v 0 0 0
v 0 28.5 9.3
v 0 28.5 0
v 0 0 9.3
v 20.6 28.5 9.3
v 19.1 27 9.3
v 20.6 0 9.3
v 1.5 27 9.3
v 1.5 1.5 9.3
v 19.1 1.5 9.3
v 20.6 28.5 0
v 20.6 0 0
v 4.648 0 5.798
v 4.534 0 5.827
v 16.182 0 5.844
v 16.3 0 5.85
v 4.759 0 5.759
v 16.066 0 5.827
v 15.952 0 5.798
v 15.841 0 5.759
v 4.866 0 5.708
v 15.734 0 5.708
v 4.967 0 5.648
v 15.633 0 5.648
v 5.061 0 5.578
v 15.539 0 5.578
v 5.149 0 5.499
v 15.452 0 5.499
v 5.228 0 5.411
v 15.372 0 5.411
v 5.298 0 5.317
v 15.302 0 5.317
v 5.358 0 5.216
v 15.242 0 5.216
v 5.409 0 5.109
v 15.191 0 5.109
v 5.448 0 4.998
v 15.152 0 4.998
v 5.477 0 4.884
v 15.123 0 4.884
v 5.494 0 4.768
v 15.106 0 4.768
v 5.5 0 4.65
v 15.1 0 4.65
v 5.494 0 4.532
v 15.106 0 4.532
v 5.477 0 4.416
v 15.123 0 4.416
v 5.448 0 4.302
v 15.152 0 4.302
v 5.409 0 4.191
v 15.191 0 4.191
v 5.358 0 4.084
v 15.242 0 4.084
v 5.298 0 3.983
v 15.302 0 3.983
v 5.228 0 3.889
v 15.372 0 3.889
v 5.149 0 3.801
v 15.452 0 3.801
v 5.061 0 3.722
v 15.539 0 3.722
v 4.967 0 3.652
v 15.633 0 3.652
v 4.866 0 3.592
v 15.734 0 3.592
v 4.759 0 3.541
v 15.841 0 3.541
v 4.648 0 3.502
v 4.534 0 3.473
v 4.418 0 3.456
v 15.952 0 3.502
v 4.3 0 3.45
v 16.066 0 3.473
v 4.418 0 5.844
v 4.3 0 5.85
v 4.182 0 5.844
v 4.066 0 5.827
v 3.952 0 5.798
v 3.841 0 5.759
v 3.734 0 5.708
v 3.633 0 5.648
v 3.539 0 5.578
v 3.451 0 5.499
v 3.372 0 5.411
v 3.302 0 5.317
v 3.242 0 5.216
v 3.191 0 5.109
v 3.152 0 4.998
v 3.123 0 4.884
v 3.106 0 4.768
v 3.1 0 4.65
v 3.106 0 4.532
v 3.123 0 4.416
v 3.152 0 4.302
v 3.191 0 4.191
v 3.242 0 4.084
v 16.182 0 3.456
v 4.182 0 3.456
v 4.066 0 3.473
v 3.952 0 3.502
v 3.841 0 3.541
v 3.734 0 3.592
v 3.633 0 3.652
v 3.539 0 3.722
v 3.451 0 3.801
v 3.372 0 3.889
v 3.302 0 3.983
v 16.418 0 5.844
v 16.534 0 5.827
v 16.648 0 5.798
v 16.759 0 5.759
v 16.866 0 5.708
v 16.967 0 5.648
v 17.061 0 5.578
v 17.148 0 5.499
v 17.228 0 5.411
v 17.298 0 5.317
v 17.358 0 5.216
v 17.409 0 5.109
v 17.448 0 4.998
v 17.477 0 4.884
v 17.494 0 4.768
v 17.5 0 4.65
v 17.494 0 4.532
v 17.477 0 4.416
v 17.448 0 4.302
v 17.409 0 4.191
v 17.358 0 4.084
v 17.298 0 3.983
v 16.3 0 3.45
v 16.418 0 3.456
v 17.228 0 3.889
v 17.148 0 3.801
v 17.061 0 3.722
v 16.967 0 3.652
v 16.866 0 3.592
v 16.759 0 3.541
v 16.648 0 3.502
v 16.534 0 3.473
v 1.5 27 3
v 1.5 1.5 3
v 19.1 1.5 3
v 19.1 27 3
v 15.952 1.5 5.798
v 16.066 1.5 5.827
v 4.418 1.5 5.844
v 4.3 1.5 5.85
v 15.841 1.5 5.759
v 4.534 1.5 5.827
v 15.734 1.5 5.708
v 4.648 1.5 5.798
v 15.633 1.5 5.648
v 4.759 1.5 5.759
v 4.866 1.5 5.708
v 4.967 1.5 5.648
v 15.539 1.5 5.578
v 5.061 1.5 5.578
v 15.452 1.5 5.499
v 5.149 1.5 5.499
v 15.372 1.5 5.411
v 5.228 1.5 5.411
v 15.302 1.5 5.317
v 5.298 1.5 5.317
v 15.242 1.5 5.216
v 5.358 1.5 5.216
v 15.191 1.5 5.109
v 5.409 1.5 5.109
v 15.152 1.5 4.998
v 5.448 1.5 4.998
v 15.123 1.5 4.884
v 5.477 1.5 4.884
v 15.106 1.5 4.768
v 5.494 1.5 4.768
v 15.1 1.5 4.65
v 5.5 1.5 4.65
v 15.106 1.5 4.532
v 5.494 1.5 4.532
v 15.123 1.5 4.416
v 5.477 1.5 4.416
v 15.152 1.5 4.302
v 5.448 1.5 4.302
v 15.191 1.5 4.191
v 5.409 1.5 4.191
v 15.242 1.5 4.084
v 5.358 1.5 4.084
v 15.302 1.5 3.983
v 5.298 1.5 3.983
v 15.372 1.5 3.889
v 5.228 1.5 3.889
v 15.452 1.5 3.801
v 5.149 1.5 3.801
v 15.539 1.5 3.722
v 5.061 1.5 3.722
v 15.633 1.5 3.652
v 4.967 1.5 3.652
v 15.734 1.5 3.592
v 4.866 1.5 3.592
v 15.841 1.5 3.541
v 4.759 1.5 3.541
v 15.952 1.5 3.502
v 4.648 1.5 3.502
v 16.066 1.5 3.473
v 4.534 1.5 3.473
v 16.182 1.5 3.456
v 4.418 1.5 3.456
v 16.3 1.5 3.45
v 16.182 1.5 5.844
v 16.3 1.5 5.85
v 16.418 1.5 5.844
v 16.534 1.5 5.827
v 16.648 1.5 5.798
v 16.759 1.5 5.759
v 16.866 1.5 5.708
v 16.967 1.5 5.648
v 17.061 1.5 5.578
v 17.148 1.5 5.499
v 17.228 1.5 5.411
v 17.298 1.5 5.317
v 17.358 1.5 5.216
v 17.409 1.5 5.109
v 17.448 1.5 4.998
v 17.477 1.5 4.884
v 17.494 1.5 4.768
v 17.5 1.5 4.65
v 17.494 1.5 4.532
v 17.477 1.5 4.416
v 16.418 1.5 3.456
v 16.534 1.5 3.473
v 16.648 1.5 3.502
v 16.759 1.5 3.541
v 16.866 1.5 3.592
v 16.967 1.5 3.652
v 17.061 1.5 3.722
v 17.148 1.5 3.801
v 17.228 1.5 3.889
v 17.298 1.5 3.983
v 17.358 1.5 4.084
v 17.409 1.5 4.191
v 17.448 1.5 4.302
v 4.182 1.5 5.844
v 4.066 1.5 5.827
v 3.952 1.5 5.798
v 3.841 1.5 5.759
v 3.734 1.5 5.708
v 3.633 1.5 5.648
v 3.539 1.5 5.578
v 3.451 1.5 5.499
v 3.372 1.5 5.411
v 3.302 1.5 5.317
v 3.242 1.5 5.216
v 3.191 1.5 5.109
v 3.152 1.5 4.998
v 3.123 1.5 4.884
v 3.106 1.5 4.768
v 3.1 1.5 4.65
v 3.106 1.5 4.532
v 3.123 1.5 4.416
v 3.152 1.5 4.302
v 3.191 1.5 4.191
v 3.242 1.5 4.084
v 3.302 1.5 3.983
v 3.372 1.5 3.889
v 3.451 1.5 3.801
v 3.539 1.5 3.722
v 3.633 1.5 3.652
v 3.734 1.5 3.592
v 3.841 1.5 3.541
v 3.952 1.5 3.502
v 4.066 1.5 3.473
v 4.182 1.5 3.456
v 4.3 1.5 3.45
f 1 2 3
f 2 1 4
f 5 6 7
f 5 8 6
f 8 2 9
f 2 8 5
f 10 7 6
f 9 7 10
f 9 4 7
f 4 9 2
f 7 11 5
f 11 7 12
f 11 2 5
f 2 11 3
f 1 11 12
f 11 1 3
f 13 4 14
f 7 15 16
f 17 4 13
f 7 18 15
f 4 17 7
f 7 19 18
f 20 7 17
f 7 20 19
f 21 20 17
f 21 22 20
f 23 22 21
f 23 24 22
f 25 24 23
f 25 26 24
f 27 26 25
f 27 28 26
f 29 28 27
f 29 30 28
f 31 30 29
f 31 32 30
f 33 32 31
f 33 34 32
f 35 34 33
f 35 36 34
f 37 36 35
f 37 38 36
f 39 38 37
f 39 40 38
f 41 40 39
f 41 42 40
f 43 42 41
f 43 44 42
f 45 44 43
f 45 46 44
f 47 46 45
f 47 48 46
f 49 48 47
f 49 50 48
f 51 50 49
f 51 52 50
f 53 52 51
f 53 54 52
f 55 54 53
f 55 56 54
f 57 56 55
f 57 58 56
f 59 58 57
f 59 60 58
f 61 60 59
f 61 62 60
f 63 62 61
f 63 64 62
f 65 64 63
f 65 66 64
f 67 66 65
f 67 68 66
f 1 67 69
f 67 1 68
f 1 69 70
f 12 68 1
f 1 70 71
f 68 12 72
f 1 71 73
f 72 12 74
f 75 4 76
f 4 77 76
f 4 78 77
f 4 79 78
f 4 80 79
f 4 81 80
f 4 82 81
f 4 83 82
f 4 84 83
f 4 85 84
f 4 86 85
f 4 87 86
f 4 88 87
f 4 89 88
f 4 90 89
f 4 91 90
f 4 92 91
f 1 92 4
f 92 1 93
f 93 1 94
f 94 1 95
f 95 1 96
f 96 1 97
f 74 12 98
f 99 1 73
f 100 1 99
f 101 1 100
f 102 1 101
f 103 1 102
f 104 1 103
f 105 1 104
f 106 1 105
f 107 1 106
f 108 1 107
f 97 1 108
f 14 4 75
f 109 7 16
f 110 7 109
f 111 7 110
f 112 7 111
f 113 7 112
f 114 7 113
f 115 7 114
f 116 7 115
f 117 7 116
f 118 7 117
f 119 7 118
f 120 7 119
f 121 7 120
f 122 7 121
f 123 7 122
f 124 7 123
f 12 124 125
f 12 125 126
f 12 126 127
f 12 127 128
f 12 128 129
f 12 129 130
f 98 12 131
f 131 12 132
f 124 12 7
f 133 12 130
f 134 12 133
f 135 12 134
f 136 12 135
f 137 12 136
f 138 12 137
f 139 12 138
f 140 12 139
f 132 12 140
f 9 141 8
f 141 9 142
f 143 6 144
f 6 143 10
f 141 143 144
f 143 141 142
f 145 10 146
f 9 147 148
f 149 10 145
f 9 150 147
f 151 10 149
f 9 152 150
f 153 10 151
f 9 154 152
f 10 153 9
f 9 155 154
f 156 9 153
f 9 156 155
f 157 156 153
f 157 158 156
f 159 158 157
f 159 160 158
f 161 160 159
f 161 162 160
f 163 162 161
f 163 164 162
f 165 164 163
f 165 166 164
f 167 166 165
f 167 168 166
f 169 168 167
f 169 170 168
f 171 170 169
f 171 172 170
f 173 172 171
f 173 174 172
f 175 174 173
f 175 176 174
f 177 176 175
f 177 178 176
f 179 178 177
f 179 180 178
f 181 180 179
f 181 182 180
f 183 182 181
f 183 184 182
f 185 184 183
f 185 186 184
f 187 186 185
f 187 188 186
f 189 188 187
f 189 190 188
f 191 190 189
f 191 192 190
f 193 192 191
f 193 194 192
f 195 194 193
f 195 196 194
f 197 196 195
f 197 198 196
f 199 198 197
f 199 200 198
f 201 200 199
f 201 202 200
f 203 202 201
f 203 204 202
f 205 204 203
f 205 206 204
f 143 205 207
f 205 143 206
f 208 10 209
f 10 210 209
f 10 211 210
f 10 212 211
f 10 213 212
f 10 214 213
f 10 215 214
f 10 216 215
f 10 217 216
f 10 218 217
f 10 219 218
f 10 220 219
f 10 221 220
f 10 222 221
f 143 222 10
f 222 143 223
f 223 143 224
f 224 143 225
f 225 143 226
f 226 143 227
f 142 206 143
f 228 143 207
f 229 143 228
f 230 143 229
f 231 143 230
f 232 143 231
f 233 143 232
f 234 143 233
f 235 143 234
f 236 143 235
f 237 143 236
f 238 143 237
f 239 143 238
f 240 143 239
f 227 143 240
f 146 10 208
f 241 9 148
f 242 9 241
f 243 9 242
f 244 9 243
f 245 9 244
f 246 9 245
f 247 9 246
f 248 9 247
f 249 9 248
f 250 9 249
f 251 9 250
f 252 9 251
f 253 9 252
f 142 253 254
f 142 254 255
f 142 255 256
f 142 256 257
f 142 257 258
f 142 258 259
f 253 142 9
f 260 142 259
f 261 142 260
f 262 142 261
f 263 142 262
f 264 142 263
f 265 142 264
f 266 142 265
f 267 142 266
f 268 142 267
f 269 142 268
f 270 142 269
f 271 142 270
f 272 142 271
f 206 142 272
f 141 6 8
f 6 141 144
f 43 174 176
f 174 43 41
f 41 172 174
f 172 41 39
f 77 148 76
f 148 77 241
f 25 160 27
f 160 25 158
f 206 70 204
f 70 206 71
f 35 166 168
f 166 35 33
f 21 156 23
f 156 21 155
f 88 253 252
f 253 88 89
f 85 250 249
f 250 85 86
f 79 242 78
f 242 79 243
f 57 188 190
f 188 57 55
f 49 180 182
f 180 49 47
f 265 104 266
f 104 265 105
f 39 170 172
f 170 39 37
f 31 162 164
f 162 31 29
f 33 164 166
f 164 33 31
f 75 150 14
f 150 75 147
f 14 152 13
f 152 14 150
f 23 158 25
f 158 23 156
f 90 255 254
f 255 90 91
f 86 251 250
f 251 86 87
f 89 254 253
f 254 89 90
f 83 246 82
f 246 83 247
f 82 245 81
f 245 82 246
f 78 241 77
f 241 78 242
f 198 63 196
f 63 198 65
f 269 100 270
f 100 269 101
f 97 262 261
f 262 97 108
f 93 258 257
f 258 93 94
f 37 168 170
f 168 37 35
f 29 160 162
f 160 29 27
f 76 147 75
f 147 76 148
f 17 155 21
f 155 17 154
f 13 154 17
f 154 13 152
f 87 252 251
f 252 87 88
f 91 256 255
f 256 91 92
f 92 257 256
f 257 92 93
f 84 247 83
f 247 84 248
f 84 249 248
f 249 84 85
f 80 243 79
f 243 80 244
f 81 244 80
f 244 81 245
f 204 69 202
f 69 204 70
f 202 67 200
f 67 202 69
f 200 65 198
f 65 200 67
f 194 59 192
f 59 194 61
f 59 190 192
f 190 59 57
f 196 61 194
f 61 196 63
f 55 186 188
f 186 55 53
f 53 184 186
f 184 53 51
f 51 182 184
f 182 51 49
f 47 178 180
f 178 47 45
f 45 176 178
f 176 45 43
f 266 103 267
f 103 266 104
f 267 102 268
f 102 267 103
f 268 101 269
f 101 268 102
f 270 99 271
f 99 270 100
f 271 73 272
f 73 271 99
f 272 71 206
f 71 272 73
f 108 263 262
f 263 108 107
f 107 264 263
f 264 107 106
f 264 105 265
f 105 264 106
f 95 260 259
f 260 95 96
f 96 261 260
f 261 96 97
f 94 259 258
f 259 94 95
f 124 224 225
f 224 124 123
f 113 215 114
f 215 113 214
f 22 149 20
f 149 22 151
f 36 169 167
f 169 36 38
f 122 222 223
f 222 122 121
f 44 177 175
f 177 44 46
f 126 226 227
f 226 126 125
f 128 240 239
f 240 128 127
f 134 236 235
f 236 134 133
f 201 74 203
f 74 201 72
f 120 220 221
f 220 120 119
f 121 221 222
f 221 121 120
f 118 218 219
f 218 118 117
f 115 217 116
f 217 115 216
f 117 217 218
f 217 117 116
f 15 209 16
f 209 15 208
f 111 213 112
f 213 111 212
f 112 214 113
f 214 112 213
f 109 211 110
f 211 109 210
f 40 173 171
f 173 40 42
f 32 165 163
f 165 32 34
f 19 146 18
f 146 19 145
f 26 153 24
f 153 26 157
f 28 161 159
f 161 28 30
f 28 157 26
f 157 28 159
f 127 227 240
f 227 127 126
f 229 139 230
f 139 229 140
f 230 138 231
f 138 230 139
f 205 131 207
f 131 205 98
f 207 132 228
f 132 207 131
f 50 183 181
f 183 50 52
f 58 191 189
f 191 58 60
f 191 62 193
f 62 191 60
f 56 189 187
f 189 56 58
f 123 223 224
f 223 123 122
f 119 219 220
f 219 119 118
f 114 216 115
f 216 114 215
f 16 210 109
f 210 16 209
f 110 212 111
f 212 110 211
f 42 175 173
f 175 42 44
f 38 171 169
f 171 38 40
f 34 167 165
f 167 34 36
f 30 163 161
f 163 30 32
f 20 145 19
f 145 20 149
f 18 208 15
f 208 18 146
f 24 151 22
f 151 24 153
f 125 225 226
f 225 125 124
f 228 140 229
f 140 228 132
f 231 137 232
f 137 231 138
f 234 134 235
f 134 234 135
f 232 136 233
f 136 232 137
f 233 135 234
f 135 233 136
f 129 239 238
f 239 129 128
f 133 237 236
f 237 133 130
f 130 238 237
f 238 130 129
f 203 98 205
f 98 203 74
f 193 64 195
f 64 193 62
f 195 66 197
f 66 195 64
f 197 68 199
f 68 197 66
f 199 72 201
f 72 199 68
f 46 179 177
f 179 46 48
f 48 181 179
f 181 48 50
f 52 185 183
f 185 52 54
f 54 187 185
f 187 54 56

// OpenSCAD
// Holder for FT 243 quartz crystal
//
// Dimensions are in mm.

$fn=64;

// Thickness of walls
thickness = 3.0;

// Width
width = 20.6;

// Depth
depth = 28.5;

// Height
height = 9.3;

difference() {
    
difference() { 
  // Outside
  cube([width, depth, height], false);
  // Inside
  translate([thickness / 2, thickness / 2, thickness]) {
    cube([width-thickness, depth-thickness, height-thickness], false);
  }
}

// Holes for pins
diameter = 2.4; // Pin diameter
spacing = 12.0; // Spacing between pins

translate([(width - spacing)/2, 5.0, height/2])
  rotate([90, 0, 0])
    cylinder(10.0, diameter/2, diameter/2, false);

translate([20.6 - (20.6 - spacing)/2, 5.0, 9.3 / 2])
  rotate([90, 0, 0])
    cylinder(10.0, diameter / 2, diameter / 2, false);

}
